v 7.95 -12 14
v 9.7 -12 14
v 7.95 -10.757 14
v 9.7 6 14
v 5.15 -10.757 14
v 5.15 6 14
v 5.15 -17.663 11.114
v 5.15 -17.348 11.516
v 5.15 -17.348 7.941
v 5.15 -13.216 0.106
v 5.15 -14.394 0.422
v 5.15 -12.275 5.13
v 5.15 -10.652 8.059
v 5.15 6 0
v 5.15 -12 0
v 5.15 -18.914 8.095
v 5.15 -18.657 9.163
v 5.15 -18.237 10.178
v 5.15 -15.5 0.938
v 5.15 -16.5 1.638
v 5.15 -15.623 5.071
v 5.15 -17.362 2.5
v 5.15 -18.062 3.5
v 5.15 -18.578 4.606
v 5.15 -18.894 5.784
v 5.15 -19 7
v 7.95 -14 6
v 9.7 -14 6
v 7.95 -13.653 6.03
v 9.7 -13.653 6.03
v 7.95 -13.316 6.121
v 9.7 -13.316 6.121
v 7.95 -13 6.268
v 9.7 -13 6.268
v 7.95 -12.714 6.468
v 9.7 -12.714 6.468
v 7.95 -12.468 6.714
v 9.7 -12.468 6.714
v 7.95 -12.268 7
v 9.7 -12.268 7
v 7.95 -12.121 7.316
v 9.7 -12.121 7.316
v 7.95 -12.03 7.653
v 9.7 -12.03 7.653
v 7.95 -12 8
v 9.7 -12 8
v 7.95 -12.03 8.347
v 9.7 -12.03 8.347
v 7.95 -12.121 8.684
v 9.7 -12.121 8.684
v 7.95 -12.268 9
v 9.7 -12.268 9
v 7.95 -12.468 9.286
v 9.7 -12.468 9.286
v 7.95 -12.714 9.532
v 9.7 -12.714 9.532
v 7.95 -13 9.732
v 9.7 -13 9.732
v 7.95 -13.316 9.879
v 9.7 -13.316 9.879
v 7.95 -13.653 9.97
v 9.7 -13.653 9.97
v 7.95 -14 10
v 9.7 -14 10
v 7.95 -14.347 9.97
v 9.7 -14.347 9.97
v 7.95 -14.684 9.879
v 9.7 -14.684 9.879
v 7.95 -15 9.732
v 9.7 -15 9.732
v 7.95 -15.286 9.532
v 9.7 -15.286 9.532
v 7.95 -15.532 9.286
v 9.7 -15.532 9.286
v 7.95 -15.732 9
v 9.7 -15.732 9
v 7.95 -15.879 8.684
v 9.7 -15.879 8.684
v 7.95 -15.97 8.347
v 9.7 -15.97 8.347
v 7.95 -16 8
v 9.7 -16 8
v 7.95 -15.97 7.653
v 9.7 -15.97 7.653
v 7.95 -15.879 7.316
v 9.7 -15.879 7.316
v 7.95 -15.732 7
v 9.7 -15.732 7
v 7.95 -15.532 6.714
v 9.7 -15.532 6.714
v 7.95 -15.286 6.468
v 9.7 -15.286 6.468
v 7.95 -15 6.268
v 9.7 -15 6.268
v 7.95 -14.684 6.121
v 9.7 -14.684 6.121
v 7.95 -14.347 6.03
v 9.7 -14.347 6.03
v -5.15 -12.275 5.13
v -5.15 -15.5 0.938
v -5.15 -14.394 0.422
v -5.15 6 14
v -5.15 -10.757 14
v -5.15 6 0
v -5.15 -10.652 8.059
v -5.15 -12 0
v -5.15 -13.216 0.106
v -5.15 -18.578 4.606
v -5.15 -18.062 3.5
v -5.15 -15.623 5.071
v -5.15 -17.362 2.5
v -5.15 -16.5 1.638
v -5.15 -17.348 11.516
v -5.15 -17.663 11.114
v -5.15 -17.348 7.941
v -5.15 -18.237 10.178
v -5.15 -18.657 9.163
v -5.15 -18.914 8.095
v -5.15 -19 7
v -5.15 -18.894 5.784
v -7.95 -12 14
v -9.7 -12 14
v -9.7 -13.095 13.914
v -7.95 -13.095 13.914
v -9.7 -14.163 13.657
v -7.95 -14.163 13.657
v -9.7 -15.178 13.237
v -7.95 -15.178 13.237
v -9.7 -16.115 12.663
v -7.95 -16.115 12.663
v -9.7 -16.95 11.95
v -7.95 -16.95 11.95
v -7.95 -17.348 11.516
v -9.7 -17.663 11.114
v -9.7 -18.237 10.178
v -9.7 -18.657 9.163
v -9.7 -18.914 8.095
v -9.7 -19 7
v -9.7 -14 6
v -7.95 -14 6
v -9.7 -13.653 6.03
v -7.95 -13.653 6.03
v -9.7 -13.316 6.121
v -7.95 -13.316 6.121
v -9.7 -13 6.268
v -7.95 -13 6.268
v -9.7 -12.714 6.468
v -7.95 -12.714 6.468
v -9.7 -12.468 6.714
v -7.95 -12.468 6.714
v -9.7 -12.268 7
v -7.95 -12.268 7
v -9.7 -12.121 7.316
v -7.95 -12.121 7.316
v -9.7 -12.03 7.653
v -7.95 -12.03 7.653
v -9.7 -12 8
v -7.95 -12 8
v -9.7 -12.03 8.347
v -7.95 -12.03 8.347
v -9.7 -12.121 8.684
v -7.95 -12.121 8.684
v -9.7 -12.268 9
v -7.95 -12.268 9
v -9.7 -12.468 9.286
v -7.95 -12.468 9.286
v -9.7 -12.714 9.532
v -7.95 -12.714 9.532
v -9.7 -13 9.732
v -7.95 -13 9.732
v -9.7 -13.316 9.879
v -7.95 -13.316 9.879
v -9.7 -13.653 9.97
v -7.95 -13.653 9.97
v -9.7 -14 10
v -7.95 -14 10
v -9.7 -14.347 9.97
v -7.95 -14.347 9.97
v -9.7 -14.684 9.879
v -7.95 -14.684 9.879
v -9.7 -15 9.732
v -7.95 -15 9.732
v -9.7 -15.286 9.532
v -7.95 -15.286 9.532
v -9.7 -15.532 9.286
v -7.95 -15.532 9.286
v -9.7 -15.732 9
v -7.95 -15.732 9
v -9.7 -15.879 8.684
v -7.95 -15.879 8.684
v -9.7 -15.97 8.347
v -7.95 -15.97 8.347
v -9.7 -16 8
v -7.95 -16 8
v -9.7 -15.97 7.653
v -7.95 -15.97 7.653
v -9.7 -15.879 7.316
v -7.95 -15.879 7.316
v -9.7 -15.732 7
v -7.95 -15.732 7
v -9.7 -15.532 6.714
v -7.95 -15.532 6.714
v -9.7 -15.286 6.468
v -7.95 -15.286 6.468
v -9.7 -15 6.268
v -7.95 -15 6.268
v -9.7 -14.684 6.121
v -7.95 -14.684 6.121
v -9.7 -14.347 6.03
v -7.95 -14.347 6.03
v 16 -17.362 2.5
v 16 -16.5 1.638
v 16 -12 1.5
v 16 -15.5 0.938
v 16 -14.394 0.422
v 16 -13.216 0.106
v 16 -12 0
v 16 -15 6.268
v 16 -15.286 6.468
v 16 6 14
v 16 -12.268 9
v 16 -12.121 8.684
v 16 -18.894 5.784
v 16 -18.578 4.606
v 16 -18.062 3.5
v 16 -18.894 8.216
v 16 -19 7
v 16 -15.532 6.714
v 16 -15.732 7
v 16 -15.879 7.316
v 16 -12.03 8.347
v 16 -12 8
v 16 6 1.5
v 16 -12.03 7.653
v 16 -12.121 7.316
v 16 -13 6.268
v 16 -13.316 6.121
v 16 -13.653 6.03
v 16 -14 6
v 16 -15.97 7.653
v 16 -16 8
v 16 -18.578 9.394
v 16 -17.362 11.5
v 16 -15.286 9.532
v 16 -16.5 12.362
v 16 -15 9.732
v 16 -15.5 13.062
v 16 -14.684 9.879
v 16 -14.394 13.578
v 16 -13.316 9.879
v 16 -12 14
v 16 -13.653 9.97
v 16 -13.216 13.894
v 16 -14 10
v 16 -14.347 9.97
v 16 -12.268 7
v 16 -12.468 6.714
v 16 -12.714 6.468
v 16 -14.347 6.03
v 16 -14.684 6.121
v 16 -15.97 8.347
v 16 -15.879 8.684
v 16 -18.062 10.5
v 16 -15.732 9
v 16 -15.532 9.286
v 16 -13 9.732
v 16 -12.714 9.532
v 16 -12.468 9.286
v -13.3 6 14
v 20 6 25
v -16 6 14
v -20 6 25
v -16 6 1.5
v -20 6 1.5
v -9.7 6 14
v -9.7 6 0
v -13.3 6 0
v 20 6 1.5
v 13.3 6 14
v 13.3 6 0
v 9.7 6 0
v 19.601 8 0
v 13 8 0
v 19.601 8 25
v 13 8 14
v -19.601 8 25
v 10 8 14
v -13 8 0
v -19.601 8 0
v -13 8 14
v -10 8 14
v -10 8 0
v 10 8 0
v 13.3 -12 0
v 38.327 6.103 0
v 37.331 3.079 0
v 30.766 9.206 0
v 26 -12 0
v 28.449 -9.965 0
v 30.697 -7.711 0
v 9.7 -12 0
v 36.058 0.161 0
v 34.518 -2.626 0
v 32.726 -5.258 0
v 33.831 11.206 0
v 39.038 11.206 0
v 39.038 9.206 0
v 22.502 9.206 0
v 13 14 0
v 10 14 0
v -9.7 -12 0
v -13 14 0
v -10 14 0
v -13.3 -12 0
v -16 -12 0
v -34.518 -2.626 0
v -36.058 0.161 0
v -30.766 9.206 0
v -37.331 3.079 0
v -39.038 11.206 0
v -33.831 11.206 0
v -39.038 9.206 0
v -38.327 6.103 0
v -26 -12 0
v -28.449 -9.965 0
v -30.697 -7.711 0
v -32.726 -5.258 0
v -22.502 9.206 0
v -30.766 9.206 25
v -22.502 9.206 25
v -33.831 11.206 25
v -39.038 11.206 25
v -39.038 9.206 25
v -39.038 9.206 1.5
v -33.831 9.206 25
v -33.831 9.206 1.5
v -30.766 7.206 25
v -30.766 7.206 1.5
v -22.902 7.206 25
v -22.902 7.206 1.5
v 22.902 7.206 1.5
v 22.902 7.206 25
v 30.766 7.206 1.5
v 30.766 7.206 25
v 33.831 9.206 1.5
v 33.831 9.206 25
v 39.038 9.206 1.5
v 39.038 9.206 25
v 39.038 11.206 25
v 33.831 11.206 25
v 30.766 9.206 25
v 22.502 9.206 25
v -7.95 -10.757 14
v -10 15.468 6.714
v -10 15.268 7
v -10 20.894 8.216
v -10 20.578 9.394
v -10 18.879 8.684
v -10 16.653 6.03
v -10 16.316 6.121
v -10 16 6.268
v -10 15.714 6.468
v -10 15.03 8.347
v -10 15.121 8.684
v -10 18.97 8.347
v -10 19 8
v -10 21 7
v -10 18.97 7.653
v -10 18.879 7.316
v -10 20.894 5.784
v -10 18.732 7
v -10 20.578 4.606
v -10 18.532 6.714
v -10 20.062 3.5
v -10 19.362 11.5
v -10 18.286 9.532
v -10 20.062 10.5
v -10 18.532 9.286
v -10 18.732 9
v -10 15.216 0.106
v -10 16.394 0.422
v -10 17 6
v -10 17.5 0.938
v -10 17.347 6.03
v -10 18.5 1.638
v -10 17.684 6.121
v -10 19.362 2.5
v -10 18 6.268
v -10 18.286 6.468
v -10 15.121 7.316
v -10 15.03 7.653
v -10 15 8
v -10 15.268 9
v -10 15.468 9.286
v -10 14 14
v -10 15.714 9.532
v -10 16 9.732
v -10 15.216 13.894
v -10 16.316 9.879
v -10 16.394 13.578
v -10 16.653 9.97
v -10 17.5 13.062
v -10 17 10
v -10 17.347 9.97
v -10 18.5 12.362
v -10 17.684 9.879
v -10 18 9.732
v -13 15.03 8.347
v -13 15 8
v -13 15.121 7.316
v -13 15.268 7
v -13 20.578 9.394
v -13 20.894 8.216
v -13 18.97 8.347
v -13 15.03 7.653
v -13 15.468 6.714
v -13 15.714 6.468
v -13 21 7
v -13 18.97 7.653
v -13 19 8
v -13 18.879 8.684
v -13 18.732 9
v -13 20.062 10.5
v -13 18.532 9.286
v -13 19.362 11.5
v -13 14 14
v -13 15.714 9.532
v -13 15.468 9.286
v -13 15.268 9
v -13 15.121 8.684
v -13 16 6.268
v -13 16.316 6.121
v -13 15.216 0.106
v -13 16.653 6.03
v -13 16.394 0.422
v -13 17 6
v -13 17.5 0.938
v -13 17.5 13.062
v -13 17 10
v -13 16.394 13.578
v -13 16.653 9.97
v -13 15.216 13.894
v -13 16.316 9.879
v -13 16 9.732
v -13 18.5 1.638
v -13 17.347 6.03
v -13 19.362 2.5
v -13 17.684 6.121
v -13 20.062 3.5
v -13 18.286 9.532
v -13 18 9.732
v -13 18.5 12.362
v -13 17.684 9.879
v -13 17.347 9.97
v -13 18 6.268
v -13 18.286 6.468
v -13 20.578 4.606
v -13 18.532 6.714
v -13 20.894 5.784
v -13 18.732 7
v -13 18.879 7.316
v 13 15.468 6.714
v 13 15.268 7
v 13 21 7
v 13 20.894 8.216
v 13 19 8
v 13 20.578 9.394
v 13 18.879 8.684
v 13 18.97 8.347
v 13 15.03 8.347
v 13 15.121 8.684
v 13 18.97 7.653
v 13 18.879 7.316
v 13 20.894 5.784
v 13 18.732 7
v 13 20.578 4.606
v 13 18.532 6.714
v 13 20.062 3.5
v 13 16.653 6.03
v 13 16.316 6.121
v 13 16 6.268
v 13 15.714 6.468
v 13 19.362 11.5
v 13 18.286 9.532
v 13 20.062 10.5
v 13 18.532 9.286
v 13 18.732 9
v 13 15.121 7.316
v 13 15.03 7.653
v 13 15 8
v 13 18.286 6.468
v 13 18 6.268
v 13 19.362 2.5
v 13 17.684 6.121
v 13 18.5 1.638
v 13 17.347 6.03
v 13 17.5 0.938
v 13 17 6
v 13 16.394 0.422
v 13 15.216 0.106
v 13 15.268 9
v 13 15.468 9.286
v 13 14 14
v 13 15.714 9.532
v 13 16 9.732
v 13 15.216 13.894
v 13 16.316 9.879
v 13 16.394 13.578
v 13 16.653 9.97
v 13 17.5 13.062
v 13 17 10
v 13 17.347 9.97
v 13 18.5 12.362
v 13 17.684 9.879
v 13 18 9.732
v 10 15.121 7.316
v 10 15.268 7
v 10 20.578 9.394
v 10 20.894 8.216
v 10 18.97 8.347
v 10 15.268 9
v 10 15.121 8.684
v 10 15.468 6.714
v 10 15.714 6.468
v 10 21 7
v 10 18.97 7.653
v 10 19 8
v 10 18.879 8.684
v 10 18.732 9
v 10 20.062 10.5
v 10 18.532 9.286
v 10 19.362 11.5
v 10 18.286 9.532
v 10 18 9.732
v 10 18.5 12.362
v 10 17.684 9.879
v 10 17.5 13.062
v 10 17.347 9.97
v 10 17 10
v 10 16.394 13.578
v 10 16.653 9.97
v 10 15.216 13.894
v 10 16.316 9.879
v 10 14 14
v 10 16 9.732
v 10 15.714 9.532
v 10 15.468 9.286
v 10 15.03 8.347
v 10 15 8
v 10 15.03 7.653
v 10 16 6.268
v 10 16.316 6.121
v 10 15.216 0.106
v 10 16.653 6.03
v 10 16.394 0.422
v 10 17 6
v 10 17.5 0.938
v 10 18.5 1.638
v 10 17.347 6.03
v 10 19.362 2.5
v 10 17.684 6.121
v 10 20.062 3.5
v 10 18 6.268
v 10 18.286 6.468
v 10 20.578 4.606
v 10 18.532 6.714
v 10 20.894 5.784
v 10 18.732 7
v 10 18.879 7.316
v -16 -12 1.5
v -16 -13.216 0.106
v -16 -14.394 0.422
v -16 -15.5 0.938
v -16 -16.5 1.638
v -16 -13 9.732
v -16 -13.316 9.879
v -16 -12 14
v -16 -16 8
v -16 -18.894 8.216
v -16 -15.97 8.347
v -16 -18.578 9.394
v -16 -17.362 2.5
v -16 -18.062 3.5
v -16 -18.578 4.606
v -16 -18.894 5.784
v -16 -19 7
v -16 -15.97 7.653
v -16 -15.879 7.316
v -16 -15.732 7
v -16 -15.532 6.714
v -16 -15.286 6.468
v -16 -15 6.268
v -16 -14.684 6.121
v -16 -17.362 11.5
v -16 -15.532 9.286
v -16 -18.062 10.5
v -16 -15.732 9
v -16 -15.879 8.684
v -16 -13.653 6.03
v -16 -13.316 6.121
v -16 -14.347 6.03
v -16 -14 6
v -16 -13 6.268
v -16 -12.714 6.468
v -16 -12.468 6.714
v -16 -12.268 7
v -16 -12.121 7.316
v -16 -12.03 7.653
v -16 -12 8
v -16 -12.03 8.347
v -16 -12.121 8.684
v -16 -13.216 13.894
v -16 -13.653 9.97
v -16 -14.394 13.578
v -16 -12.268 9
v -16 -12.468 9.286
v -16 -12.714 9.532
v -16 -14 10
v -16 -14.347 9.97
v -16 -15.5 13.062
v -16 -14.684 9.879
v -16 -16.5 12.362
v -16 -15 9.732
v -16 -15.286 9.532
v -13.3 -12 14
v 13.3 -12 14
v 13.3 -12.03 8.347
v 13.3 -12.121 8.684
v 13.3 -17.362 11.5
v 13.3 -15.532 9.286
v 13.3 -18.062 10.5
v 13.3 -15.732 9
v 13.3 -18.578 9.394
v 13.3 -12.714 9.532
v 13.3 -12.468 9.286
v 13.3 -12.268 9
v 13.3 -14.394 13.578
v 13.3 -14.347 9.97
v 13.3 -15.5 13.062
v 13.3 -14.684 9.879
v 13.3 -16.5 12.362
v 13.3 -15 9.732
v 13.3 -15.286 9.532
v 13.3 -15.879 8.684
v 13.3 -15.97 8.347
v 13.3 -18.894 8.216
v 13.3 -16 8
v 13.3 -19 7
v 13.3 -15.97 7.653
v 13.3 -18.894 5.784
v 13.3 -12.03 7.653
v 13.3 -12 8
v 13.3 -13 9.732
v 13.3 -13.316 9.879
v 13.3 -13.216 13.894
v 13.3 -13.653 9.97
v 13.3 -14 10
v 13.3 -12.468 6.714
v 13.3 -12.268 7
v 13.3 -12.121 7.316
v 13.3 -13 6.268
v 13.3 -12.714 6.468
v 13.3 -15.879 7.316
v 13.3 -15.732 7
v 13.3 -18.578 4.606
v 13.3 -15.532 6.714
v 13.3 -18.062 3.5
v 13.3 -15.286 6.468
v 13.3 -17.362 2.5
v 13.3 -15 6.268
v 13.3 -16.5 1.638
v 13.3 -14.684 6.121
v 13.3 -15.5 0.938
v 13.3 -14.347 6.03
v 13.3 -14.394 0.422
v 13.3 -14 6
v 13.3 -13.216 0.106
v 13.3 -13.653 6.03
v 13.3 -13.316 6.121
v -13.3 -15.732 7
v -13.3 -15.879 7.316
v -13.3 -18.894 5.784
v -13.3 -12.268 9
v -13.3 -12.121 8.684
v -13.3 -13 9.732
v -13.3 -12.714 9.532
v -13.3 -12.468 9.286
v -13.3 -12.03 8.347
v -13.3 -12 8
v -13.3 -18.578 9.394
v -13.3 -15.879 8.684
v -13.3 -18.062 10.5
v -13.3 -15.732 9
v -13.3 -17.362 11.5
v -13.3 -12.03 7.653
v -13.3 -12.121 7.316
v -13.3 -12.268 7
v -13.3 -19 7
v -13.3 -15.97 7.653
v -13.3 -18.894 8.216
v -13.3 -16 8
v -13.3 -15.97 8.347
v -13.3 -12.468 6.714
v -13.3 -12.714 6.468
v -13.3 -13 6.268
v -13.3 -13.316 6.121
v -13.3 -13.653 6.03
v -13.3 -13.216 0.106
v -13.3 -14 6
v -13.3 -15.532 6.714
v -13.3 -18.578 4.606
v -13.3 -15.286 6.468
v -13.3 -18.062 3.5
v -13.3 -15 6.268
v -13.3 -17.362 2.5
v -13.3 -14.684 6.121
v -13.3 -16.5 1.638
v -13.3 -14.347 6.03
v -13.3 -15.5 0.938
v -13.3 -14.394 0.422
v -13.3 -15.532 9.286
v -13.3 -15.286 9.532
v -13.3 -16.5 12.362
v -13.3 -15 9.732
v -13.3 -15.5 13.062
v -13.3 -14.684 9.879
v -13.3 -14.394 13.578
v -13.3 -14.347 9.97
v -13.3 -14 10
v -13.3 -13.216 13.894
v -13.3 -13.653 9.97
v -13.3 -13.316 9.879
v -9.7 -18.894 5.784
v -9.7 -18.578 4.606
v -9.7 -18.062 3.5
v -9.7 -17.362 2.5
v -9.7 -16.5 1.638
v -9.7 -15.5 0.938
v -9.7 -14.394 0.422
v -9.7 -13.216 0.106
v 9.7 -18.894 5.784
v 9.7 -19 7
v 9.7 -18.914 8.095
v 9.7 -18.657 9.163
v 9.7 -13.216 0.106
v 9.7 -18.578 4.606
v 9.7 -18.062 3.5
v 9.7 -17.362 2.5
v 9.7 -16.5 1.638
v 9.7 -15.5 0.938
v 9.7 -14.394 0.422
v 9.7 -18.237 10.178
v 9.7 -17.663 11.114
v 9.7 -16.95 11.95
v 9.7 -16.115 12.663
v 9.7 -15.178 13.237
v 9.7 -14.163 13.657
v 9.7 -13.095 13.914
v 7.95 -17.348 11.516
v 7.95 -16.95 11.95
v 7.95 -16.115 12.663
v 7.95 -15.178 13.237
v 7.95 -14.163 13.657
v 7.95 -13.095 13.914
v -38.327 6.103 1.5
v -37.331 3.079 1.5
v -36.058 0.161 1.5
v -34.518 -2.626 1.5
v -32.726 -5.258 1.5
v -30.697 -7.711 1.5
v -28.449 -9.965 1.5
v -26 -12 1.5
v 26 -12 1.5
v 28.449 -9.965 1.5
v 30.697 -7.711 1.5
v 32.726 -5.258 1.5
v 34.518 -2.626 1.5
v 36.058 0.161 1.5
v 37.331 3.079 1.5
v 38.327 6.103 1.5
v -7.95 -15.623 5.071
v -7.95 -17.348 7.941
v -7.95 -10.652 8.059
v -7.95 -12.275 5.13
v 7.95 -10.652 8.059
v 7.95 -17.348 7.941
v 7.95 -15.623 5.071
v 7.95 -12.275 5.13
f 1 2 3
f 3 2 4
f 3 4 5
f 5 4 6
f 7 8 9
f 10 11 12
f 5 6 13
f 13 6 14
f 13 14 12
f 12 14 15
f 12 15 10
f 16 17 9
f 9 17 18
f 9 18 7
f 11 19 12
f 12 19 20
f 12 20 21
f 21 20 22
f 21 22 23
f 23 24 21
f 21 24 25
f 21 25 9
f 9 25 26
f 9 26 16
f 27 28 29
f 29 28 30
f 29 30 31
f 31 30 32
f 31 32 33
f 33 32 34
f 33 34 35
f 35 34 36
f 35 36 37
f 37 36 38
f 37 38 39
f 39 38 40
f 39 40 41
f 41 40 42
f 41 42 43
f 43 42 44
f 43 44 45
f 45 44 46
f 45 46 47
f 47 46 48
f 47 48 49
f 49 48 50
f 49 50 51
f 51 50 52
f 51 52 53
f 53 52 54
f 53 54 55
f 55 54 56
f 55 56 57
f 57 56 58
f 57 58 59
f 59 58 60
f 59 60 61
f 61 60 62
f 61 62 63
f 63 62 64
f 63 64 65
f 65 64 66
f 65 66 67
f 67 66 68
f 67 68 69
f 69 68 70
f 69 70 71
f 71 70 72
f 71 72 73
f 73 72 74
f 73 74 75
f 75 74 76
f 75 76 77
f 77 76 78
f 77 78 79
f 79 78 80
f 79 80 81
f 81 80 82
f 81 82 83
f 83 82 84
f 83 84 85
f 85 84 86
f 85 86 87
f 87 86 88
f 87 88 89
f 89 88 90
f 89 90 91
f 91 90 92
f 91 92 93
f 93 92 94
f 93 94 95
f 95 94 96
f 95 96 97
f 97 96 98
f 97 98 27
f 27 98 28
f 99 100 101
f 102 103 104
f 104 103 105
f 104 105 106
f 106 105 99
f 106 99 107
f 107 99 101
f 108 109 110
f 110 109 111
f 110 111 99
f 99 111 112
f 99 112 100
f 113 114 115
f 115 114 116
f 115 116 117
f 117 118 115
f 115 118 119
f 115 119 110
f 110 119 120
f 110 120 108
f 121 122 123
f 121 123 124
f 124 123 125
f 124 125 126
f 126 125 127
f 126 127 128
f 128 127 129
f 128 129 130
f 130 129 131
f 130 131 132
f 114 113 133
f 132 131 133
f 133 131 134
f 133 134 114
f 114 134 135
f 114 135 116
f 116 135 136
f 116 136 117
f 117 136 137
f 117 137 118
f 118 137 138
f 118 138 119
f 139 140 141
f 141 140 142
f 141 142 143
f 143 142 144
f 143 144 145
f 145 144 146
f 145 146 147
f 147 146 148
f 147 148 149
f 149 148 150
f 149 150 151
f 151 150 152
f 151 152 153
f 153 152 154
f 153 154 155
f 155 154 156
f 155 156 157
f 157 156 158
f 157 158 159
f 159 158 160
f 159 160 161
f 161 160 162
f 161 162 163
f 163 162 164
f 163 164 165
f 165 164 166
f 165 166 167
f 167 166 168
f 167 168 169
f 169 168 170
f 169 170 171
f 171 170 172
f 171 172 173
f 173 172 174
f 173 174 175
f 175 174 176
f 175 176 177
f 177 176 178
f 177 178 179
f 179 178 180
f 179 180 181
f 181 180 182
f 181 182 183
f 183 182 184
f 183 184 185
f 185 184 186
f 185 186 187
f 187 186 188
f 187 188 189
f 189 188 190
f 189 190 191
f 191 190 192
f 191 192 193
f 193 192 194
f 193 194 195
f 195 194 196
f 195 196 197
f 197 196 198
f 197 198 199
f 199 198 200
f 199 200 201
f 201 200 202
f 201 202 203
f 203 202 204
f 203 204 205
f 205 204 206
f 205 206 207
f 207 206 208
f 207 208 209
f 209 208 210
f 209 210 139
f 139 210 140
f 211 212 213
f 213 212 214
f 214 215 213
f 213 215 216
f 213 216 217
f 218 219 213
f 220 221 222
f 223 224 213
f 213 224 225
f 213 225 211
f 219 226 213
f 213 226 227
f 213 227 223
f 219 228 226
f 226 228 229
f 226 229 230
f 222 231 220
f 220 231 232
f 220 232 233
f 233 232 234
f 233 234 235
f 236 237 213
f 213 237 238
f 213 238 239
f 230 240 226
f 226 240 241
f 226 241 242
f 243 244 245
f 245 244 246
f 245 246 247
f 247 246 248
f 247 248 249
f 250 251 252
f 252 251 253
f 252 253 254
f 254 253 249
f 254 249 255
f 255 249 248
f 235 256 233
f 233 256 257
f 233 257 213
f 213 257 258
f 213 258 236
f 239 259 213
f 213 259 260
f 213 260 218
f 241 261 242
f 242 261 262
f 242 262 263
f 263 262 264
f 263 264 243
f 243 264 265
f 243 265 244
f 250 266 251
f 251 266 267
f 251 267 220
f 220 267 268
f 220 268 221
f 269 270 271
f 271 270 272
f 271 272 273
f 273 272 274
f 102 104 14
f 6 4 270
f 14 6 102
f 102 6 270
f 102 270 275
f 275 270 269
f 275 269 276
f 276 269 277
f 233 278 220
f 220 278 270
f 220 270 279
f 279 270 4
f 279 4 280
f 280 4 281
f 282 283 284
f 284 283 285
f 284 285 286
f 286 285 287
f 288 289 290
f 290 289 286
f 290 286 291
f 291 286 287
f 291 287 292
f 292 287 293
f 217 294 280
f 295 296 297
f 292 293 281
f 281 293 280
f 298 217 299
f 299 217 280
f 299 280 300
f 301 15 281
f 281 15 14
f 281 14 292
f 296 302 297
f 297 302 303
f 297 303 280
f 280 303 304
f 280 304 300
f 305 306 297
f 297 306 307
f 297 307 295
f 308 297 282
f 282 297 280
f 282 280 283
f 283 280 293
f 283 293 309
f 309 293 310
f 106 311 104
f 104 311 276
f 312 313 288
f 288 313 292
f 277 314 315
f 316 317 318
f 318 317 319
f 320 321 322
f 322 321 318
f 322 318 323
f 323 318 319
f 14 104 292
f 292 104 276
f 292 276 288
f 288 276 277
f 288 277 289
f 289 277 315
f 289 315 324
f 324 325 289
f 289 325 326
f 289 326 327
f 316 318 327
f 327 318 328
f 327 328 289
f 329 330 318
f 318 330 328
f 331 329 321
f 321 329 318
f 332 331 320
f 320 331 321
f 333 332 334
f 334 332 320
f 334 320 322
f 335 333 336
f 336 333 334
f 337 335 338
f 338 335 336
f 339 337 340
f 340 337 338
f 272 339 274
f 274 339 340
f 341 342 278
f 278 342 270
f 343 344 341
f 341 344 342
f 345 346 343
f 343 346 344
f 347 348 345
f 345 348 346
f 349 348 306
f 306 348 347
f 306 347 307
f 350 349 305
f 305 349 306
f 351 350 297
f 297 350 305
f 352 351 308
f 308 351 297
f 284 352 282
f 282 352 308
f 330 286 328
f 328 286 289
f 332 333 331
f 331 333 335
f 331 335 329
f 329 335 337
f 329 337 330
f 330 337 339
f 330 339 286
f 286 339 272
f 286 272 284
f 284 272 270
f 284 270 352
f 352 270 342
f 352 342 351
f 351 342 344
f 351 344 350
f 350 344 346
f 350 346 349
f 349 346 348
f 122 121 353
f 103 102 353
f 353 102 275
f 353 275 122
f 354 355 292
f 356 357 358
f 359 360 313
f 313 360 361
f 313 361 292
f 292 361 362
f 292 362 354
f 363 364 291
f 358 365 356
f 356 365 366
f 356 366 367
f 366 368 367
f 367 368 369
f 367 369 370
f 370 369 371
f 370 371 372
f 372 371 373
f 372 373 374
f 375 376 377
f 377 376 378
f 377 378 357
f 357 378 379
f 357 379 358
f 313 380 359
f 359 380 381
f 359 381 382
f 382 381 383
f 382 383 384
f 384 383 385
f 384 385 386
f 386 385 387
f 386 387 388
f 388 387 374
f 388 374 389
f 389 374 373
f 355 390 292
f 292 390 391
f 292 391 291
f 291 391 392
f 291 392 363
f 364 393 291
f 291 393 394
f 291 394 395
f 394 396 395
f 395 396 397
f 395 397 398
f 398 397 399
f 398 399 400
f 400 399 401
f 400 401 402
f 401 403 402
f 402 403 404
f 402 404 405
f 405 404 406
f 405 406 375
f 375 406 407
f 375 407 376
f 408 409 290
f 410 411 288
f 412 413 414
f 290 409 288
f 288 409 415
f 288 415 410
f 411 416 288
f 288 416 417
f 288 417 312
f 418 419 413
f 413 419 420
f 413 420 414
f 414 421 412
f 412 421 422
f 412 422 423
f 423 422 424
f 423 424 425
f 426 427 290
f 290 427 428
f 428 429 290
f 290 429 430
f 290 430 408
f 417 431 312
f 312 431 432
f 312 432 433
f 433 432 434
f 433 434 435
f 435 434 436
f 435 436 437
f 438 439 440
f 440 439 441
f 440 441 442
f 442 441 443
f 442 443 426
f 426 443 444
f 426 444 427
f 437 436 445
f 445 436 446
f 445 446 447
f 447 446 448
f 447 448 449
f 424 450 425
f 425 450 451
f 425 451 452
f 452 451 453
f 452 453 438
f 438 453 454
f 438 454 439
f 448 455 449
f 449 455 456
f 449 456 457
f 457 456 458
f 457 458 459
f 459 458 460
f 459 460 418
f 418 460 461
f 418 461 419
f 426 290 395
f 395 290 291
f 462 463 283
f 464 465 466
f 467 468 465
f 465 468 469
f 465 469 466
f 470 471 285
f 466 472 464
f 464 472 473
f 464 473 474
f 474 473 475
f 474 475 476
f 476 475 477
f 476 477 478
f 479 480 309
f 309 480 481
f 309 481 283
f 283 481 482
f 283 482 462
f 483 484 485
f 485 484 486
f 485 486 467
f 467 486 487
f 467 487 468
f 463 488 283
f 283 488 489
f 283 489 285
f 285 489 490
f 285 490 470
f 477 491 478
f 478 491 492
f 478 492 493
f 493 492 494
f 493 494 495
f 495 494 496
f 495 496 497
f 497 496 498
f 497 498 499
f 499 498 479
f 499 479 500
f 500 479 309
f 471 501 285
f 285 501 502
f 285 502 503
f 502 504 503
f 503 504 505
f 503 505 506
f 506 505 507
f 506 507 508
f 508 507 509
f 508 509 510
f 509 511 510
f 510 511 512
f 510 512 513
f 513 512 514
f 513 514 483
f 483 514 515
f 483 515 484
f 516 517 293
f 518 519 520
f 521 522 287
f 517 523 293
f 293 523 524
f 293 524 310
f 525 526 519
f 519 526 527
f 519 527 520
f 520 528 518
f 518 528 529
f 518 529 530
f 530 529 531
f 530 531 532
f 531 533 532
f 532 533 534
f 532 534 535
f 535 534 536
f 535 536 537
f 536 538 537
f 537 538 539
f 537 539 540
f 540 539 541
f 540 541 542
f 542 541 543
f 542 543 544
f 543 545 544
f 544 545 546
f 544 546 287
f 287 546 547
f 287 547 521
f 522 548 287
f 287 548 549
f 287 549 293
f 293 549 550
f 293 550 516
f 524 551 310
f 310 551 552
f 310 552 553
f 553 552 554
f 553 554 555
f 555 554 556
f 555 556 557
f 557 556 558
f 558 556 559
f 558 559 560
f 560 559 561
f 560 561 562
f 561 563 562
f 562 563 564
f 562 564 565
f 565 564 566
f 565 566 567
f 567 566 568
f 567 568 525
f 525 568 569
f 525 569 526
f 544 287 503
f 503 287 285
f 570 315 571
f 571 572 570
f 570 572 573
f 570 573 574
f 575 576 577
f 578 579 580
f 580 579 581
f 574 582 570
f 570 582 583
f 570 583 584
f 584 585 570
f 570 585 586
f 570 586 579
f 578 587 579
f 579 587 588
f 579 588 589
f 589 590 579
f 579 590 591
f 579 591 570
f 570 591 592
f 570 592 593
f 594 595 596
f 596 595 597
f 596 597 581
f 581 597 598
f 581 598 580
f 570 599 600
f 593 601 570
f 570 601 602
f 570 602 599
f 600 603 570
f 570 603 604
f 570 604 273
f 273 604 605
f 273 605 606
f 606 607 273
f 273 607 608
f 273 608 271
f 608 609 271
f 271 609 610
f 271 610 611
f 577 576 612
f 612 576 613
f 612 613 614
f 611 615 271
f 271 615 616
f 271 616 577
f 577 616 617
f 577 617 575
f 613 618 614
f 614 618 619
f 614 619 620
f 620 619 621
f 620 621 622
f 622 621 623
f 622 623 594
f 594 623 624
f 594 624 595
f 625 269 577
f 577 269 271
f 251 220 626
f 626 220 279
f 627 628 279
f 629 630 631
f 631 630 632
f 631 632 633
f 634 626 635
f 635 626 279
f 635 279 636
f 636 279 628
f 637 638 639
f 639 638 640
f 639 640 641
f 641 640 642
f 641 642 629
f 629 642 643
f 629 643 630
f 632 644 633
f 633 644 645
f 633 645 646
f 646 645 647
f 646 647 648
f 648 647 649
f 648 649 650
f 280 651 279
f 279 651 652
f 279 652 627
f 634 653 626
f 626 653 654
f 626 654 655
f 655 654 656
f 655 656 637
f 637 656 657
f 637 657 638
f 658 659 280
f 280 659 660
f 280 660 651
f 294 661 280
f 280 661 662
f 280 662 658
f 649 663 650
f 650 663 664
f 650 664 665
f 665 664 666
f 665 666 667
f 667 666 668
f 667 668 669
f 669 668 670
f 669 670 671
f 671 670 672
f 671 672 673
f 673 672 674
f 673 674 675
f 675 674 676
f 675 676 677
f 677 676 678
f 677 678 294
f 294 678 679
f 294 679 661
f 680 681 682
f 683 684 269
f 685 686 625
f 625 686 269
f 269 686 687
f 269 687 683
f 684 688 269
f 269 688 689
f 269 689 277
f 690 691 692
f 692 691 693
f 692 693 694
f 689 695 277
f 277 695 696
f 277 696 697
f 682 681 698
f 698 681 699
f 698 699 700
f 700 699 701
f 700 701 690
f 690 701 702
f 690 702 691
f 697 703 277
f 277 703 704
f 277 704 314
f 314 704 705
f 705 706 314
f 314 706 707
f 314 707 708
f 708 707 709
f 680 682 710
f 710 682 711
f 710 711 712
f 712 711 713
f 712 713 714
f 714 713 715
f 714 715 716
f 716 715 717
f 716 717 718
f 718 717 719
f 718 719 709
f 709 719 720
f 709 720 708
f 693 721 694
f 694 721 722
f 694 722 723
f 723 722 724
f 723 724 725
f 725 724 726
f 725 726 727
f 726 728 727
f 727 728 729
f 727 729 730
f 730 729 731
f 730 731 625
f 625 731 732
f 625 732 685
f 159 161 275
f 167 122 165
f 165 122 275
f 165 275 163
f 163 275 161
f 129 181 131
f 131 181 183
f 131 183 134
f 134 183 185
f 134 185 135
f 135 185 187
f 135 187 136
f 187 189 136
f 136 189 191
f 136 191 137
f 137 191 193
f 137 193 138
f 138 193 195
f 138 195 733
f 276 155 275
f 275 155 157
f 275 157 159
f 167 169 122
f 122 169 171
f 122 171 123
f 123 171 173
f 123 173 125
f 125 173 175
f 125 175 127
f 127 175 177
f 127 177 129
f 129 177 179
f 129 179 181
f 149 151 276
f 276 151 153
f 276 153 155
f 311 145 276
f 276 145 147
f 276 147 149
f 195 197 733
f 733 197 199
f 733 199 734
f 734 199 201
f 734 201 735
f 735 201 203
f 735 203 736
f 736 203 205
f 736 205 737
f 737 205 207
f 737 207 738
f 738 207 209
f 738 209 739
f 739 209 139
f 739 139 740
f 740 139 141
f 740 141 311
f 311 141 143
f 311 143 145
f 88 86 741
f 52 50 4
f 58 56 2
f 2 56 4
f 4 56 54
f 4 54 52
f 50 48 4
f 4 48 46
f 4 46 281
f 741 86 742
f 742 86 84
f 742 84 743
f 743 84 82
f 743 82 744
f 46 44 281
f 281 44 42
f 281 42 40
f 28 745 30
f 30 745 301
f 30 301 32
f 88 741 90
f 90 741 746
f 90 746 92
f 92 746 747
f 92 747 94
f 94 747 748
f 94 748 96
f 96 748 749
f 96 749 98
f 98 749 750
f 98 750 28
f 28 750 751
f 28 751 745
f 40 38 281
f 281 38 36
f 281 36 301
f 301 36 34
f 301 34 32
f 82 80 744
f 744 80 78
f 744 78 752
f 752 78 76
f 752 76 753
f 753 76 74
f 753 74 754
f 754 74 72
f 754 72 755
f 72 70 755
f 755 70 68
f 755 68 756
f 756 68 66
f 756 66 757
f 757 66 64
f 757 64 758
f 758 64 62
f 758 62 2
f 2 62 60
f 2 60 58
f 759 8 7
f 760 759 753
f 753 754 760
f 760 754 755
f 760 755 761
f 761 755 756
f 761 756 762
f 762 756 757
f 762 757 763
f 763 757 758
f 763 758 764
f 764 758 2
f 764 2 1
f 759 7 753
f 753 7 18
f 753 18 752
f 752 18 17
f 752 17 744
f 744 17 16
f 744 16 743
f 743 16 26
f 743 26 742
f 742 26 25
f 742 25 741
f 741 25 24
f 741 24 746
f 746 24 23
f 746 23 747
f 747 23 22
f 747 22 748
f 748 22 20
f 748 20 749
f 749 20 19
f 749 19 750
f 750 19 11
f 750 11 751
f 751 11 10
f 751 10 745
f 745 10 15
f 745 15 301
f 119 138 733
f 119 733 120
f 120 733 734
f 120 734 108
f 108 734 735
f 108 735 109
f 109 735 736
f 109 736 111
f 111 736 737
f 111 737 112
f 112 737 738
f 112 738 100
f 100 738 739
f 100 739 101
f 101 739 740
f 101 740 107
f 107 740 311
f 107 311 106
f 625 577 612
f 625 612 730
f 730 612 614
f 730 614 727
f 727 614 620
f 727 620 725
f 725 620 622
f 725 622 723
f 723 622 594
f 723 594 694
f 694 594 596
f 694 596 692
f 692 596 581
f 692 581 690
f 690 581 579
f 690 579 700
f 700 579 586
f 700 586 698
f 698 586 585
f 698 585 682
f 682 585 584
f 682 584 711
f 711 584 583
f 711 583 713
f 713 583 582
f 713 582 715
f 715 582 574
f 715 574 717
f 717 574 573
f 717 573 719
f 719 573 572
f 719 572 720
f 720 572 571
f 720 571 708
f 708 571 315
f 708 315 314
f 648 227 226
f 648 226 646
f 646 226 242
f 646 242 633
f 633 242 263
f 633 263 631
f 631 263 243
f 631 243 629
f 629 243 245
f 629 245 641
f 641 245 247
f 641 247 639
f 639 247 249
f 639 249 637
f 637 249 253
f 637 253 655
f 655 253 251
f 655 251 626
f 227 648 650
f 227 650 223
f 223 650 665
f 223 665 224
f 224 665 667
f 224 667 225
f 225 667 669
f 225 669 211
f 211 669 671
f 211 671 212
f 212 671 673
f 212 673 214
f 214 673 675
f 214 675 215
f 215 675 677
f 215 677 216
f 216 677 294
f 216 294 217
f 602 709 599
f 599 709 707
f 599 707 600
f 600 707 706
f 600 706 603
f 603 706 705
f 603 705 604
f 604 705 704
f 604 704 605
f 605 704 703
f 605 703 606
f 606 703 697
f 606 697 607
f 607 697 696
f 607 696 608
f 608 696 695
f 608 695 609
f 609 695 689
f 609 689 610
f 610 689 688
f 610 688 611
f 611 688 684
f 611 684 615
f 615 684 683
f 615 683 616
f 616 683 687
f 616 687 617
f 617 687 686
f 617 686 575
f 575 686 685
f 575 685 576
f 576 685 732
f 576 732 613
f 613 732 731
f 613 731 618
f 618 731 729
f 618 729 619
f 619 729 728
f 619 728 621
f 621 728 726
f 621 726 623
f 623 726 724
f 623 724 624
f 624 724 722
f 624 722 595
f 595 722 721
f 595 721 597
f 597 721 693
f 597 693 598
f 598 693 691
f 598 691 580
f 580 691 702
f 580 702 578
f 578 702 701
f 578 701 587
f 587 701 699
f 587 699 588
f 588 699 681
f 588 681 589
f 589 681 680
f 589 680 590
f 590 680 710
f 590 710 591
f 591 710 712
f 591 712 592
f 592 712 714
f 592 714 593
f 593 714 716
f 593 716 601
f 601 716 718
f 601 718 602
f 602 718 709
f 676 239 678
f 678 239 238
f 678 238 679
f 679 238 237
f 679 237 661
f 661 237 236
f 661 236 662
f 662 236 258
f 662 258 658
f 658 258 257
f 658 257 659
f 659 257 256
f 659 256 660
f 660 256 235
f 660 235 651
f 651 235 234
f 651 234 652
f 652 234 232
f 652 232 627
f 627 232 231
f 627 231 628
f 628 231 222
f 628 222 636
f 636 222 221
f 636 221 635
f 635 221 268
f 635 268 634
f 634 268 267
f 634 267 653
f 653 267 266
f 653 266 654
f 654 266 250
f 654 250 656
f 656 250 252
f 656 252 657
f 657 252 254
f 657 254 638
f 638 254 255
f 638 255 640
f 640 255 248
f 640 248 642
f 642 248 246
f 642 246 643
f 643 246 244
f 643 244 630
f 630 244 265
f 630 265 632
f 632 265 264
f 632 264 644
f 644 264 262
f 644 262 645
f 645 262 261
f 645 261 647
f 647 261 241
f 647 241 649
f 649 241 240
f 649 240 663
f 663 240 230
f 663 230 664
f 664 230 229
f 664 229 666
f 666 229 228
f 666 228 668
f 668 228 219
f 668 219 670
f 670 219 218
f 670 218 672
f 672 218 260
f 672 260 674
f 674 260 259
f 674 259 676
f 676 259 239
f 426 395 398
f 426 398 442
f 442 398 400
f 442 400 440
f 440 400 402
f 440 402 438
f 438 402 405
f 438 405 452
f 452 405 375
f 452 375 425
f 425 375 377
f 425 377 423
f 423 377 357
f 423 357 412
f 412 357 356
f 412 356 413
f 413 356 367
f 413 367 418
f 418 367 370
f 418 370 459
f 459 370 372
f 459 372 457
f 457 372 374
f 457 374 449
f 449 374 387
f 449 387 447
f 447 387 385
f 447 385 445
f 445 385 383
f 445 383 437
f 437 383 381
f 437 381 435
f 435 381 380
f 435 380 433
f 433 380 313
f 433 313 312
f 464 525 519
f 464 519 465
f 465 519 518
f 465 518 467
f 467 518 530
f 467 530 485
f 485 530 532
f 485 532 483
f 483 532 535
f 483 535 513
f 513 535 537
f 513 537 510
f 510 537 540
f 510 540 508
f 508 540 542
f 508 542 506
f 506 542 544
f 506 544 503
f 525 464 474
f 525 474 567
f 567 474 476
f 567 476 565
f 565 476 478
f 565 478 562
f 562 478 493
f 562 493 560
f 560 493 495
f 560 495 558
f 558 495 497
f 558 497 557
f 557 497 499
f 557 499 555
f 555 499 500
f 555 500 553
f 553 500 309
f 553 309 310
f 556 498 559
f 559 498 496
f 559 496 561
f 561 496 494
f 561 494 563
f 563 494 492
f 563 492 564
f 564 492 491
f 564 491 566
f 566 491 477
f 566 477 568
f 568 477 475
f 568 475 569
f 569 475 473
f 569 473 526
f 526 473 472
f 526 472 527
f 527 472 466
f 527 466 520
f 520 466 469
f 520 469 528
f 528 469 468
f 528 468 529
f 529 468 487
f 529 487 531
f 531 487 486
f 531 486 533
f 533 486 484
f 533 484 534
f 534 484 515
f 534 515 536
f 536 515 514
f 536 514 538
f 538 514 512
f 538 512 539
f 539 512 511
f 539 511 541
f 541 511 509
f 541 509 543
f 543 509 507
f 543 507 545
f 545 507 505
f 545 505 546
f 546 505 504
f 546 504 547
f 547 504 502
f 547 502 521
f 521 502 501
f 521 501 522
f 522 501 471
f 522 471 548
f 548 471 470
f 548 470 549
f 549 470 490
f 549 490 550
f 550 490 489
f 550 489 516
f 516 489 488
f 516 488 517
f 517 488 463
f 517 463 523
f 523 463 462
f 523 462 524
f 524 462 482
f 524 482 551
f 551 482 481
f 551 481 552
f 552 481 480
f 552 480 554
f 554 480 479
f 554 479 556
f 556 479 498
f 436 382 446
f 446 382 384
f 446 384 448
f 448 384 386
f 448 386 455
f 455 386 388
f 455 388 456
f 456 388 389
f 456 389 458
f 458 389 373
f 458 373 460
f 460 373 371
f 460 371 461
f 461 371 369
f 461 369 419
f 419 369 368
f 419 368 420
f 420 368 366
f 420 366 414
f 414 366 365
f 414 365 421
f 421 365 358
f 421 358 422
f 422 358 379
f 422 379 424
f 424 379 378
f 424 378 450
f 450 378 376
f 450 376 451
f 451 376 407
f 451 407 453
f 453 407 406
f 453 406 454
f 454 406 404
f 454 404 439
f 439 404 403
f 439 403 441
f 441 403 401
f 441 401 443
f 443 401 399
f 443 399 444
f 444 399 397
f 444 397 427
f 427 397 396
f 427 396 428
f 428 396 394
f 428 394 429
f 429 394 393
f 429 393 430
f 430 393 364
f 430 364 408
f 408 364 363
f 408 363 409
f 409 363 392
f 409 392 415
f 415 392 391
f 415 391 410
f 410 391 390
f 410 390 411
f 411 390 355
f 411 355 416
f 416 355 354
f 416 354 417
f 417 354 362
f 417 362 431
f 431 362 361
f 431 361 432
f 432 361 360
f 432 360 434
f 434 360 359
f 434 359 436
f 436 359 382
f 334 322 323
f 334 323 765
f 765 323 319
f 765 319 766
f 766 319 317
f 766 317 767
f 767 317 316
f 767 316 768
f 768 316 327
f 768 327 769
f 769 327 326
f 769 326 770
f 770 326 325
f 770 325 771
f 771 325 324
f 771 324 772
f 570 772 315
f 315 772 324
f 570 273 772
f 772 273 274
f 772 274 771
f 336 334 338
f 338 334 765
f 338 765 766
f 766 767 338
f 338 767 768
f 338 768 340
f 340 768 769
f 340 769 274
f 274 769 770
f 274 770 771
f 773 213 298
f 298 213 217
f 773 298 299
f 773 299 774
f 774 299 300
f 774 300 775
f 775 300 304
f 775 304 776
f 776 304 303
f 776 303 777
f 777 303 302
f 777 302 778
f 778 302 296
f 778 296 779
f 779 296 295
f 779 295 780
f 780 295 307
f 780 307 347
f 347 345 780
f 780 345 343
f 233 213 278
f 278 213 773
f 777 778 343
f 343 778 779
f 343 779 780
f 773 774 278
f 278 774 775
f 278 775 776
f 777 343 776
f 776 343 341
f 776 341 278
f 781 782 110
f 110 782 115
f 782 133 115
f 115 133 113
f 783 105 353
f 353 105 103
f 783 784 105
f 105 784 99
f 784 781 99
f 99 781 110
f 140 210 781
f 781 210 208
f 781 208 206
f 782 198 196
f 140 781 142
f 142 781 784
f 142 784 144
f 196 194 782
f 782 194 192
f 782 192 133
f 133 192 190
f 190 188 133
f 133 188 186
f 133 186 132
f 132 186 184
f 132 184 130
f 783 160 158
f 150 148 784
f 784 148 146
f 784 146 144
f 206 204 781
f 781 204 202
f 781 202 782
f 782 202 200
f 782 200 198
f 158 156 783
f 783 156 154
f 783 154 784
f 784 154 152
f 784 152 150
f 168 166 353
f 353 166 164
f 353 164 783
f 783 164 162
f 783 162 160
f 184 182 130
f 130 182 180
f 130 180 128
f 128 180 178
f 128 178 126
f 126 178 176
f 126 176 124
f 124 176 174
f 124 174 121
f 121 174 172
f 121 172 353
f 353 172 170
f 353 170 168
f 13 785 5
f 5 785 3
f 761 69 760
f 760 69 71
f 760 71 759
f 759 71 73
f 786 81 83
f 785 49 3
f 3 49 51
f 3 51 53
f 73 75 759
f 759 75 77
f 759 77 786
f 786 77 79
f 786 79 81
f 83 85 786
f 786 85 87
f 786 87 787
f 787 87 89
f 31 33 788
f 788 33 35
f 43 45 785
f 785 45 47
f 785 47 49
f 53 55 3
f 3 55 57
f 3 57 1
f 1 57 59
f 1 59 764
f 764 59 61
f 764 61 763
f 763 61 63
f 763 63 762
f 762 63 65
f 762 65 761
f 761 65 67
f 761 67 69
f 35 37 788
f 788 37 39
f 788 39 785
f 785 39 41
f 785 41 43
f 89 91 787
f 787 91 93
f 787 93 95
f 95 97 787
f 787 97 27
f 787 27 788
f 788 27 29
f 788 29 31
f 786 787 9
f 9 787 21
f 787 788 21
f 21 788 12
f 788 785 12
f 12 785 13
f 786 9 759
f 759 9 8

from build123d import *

# Parameters (mm, degrees)
SKETCH2_W                 = 5
SKETCH2_H                 = 25
BOSS_EXTRUDE1_DEPTH       = 14
BOSS_EXTRUDE1_2_DEPTH     = 14
BOSS_EXTRUDE3_DEPTH       = 25
SKETCH5_W                 = 3
SKETCH5_H                 = 13
BOSS_EXTRUDE4_DEPTH       = 14
SKETCH7_W                 = 3
SKETCH7_H                 = 25
BOSS_EXTRUDE5_DEPTH       = 14
SKETCH15_W                = 0.3
SKETCH15_H                = 14
CUT_EXTRUDE2_DEPTH        = 25
SKETCH16_W                = 0.15
SKETCH16_H                = 14
CUT_EXTRUDE3_DEPTH        = 25
FILLET1_R                 = 7
F_4_0MM_DOWEL_HOLE2_D     = 4
FILLET2_R                 = 7
F_4_0MM_DOWEL_HOLE1_D     = 4
F_4_0MM_DOWEL_HOLE1_DEPTH = 26
F_4_0MM_DOWEL_HOLE1_TIP   = 1.201721238
BOSS_EXTRUDE6_DEPTH       = 1.5
CUT_EXTRUDE4_START        = -2.8
SKETCH18_R                = 2
CUT_EXTRUDE4_DEPTH        = 2.8


with BuildPart() as part:
    # Sketch2 → Boss-Extrude1 (new body)
    with BuildSketch(Plane.XY):
        with Locations((-7.5, -6.5)):
            Rectangle(SKETCH2_W, SKETCH2_H)
    extrude(amount=BOSS_EXTRUDE1_DEPTH)



with BuildPart() as body_2:
    # Sketch2 → Boss-Extrude1 2 (new body)
    with BuildSketch(Plane.XY):
        with Locations((7.5, -6.5)):
            Rectangle(SKETCH2_W, SKETCH2_H)
    extrude(amount=BOSS_EXTRUDE1_2_DEPTH)


with BuildPart() as part_1:
    add(part.part)

    add(body_2.part)  # Boss-Extrude3 merges body 2
    # Sketch4 → Boss-Extrude3 (add)
    with BuildSketch(Plane.XY):
        Polygon((-26, 9.206366686), (-30.765993712, 9.206366686), (-33.831204342, 11.206366686), (-39.037863495, 11.206366686), (-39.037863495, 9.206366686), (-33.831204342, 9.206366686), (-30.765993712, 7.206366686), (-26, 7.206366686), align=None)
        Polygon((22.901603942, 7.206366686), (26, 7.206366686), (26, 9.206366686), (22.502408858, 9.206366686), (19.600804916, 8), (10, 8), (-10, 8), (-19.600804916, 8), (-22.502408858, 9.206366686), (-26, 9.206366686), (-26, 7.206366686), (-22.901603942, 7.206366686), (-20, 6), (-10, 6), (10, 6), (20, 6), align=None)
        Polygon((26, 7.206366686), (26, 9.206366686), (30.765993712, 9.206366686), (33.831204342, 11.206366686), (39.037863495, 11.206366686), (39.037863495, 9.206366686), (33.831204342, 9.206366686), (30.765993712, 7.206366686), align=None)
    extrude(amount=BOSS_EXTRUDE3_DEPTH)

    # Sketch5 → Boss-Extrude4 (add)
    with BuildSketch(Plane.XY):
        with Locations((-11.5, 14.5)):
            Rectangle(SKETCH5_W, SKETCH5_H)
        with Locations((11.5, 14.5)):
            Rectangle(SKETCH5_W, SKETCH5_H)
    extrude(amount=BOSS_EXTRUDE4_DEPTH)

    # Sketch7 → Boss-Extrude5 (add)
    with BuildSketch(Plane.XY):
        with Locations((-14.5, -6.5)):
            Rectangle(SKETCH7_W, SKETCH7_H)
        with Locations((14.5, -6.5)):
            Rectangle(SKETCH7_W, SKETCH7_H)
    extrude(amount=BOSS_EXTRUDE5_DEPTH)

    # Sketch15 → Cut-Extrude2 (cut)
    with BuildSketch(Plane.XZ.offset(19)):
        with Locations((-9.85, 7)):
            Rectangle(SKETCH15_W, SKETCH15_H)
        with Locations((9.85, 7)):
            Rectangle(SKETCH15_W, SKETCH15_H)
        with Locations((-13.15, 7)):
            Rectangle(SKETCH15_W, SKETCH15_H)
        with Locations((13.15, 7)):
            Rectangle(SKETCH15_W, SKETCH15_H)
    extrude(amount=-CUT_EXTRUDE2_DEPTH, mode=Mode.SUBTRACT)

    # Sketch16 → Cut-Extrude3 (cut)
    with BuildSketch(Plane.XZ.offset(19)):
        with Locations((-5.075, 7)):
            Rectangle(SKETCH16_W, SKETCH16_H)
        with Locations((5.075, 7)):
            Rectangle(SKETCH16_W, SKETCH16_H)
    extrude(amount=-CUT_EXTRUDE3_DEPTH, mode=Mode.SUBTRACT)

    # Fillet1
    fillet1_edges = [part_1.edges().sort_by_distance(p)[0] for p in [
        (7.425, -19, 14),
        (7.425, -19, 0),
        (-7.425, -19, 0),
        (-7.425, -19, 14),
        (-14.65, -19, 0),
        (-14.65, -19, 14),
        (14.65, -19, 14),
        (14.65, -19, 0),
    ]]
    fillet(fillet1_edges, radius=FILLET1_R - 0.0001)  # a hair under: the kernel refuses the full size

    # Ø4.0mm Dowel Hole2 (through all)
    with Locations(Plane(origin=(16, 0, 0), x_dir=(0, 0, -1), z_dir=(1, 0, 0))):
        with Locations((-8, -14)):
            Hole(F_4_0MM_DOWEL_HOLE2_D / 2)

    # Fillet2
    fillet2_edges = [part_1.edges().sort_by_distance(p)[0] for p in [
        (-11.5, 21, 0),
        (-11.5, 21, 14),
        (11.5, 21, 0),
        (11.5, 21, 14),
    ]]
    fillet(fillet2_edges, radius=FILLET2_R - 0.0001)  # a hair under: the kernel refuses the full size

    # Ø4.0mm Dowel Hole1
    with Locations(Plane(origin=(13, 0, 0), x_dir=(0, 0, -1), z_dir=(1, 0, 0))):
        with Locations((-8, 17)):
            Hole(F_4_0MM_DOWEL_HOLE1_D / 2, depth=F_4_0MM_DOWEL_HOLE1_DEPTH)
            with Locations((0, 0, -(F_4_0MM_DOWEL_HOLE1_DEPTH + F_4_0MM_DOWEL_HOLE1_TIP / 2))):  # 118° drill point
                Cone(0, F_4_0MM_DOWEL_HOLE1_D / 2, F_4_0MM_DOWEL_HOLE1_TIP, mode=Mode.SUBTRACT)

    # Sketch14 → Boss-Extrude6 (add)
    with BuildSketch(Plane.XY):
        with BuildLine():
            Line((-22.901603942, 7.206366686), (-30.765993712, 7.206366686))
            Line((-30.765993712, 7.206366686), (-33.831204342, 9.206366686))
            Line((-33.831204342, 9.206366686), (-39.037863495, 9.206366686))
            ThreePointArc((-39.037863495, 9.206366686), (-34.518223809, -2.625999259), (-26, -12))
            Line((-26, -12), (-16, -12))
            Line((-16, -12), (-16, 6))
            Line((-16, 6), (-20, 6))
            Line((-20, 6), (-22.901603942, 7.206366686))
        make_face()
        with BuildLine():
            Line((20, 6), (16, 6))
            Line((16, 6), (16, -12))
            Line((16, -12), (26, -12))
            ThreePointArc((26, -12), (34.518223809, -2.625999259), (39.037863495, 9.206366686))
            Line((39.037863495, 9.206366686), (33.831204342, 9.206366686))
            Line((33.831204342, 9.206366686), (30.765993712, 7.206366686))
            Line((30.765993712, 7.206366686), (22.901603942, 7.206366686))
            Line((22.901603942, 7.206366686), (20, 6))
        make_face()
    extrude(amount=BOSS_EXTRUDE6_DEPTH)

    # Sketch18 → Cut-Extrude4 (cut)
    # profile 1 of 3: a face of its own
    with BuildSketch(Plane(origin=(-5.15, 0, 0), x_dir=(0, 0, -1), z_dir=(1, 0, 0)).offset(CUT_EXTRUDE4_START)):
        Polygon((-7.940827202, -17.348108707), (-5.070866406, -15.622809207), (-5.130039204, -12.2747005), (-8.059172798, -10.651891293), (-10.929133594, -12.377190793), (-10.869960796, -15.7252995), align=None)
        with Locations((-8, -14)):
            Circle(SKETCH18_R, mode=Mode.SUBTRACT)
    # profile 2 of 3: a face of its own
    with BuildSketch(Plane(origin=(-5.15, 0, 0), x_dir=(0, 0, -1), z_dir=(1, 0, 0)).offset(CUT_EXTRUDE4_START)):
        with BuildLine():
            Line((-22.212279743, -17.348108707), (-11.516384977, -17.348108707))
            ThreePointArc((-11.516384977, -17.348108707), (-13.348806771, -14.948330474), (-14, -12))
            Line((-14, -12), (-14, -10.7568865))
            Line((-14, -10.7568865), (-22.212279743, -10.902026223))
            Line((-22.212279743, -10.902026223), (-22.212279743, -17.348108707))
        make_face()
    # profile 3 of 3: a face of its own
    with BuildSketch(Plane(origin=(-5.15, 0, 0), x_dir=(0, 0, -1), z_dir=(1, 0, 0)).offset(CUT_EXTRUDE4_START)):
        with BuildLine():
            Line((-11.516384977, -17.348108707), (-7.940827202, -17.348108707))
            Line((-7.940827202, -17.348108707), (-10.869960796, -15.7252995))
            Line((-10.869960796, -15.7252995), (-10.929133594, -12.377190793))
            Line((-10.929133594, -12.377190793), (-8.059172798, -10.651891293))
            Line((-8.059172798, -10.651891293), (-14, -10.7568865))
            Line((-14, -10.7568865), (-14, -12))
            ThreePointArc((-14, -12), (-13.348806771, -14.948330474), (-11.516384977, -17.348108707))
        make_face()
    cut_extrude4 = extrude(amount=CUT_EXTRUDE4_DEPTH, mode=Mode.SUBTRACT)

    # Mirror1: Cut-Extrude4 across plane
    add(cut_extrude4.mirror(Plane(origin=(0, 0, 0), x_dir=(0, 0, 1), z_dir=(1, 0, 0))), mode=Mode.SUBTRACT)


solid = part_1.part
